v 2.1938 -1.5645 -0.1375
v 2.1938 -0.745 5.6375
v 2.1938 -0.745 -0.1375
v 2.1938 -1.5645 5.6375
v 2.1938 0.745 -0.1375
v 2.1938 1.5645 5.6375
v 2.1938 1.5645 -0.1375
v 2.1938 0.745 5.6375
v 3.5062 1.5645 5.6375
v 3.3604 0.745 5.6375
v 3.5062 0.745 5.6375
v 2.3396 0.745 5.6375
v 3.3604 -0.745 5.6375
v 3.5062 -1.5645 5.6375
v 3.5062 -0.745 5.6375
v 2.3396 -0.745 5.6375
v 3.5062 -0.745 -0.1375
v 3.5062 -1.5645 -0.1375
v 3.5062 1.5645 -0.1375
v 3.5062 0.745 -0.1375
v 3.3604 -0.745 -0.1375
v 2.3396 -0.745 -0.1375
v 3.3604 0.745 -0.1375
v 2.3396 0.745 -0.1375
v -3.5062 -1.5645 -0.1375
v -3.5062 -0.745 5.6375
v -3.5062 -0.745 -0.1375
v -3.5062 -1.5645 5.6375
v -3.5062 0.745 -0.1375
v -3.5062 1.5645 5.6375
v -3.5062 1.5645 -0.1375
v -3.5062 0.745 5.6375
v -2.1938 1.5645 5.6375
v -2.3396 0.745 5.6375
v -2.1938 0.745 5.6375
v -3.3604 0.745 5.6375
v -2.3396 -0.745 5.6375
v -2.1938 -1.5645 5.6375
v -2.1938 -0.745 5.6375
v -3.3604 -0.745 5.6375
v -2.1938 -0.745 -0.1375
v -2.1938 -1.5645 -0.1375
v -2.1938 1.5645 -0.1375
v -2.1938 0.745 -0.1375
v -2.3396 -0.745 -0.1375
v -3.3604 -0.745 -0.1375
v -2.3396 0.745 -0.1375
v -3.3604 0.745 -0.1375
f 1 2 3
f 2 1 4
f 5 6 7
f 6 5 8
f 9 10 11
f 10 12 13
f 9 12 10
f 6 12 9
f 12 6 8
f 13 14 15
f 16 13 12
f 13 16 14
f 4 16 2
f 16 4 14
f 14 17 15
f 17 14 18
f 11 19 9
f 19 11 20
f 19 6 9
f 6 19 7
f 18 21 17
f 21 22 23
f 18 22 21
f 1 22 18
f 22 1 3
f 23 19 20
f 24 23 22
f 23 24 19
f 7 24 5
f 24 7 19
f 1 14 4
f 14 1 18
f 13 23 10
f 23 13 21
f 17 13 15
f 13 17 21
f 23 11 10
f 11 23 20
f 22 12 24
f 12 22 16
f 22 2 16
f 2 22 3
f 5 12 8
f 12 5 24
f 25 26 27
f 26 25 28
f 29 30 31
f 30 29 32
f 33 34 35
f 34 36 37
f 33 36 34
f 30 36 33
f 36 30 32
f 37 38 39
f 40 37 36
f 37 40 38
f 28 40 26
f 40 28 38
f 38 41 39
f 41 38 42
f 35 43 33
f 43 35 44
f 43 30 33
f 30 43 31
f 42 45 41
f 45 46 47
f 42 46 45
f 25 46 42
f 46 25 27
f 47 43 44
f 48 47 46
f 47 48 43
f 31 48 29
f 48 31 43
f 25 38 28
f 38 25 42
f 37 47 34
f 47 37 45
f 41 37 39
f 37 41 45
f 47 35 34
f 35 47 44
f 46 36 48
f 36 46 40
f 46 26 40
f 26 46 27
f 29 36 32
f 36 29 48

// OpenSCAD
$fs = 0.10;

stem_size = [1.25, 2.98, 3.50 + 2.00];
stem_buffer = 1.05;
stem_diff = [stem_size[0], stem_size[1] / 2.10, stem_size[2] + 1.00];
stem_offset = [5.70 / 2, 0, stem_size[2] / 2];

module stem_one_side() {
    difference() {
        cube(stem_size * stem_buffer, true);
        translate([stem_size[0] *  1 * (2.8 / 3.0), 0, 0])
            cube(stem_diff * stem_buffer, true);
        translate([stem_size[0] * -1 * (2.8 / 3.0), 0, 0])
            cube(stem_diff * stem_buffer, true);
    }
}

module choc_stems() {
    translate(stem_offset)
        stem_one_side();
    translate([-1 * stem_offset[0], stem_offset[1], stem_offset[2]])
        stem_one_side();
}

choc_stems();
